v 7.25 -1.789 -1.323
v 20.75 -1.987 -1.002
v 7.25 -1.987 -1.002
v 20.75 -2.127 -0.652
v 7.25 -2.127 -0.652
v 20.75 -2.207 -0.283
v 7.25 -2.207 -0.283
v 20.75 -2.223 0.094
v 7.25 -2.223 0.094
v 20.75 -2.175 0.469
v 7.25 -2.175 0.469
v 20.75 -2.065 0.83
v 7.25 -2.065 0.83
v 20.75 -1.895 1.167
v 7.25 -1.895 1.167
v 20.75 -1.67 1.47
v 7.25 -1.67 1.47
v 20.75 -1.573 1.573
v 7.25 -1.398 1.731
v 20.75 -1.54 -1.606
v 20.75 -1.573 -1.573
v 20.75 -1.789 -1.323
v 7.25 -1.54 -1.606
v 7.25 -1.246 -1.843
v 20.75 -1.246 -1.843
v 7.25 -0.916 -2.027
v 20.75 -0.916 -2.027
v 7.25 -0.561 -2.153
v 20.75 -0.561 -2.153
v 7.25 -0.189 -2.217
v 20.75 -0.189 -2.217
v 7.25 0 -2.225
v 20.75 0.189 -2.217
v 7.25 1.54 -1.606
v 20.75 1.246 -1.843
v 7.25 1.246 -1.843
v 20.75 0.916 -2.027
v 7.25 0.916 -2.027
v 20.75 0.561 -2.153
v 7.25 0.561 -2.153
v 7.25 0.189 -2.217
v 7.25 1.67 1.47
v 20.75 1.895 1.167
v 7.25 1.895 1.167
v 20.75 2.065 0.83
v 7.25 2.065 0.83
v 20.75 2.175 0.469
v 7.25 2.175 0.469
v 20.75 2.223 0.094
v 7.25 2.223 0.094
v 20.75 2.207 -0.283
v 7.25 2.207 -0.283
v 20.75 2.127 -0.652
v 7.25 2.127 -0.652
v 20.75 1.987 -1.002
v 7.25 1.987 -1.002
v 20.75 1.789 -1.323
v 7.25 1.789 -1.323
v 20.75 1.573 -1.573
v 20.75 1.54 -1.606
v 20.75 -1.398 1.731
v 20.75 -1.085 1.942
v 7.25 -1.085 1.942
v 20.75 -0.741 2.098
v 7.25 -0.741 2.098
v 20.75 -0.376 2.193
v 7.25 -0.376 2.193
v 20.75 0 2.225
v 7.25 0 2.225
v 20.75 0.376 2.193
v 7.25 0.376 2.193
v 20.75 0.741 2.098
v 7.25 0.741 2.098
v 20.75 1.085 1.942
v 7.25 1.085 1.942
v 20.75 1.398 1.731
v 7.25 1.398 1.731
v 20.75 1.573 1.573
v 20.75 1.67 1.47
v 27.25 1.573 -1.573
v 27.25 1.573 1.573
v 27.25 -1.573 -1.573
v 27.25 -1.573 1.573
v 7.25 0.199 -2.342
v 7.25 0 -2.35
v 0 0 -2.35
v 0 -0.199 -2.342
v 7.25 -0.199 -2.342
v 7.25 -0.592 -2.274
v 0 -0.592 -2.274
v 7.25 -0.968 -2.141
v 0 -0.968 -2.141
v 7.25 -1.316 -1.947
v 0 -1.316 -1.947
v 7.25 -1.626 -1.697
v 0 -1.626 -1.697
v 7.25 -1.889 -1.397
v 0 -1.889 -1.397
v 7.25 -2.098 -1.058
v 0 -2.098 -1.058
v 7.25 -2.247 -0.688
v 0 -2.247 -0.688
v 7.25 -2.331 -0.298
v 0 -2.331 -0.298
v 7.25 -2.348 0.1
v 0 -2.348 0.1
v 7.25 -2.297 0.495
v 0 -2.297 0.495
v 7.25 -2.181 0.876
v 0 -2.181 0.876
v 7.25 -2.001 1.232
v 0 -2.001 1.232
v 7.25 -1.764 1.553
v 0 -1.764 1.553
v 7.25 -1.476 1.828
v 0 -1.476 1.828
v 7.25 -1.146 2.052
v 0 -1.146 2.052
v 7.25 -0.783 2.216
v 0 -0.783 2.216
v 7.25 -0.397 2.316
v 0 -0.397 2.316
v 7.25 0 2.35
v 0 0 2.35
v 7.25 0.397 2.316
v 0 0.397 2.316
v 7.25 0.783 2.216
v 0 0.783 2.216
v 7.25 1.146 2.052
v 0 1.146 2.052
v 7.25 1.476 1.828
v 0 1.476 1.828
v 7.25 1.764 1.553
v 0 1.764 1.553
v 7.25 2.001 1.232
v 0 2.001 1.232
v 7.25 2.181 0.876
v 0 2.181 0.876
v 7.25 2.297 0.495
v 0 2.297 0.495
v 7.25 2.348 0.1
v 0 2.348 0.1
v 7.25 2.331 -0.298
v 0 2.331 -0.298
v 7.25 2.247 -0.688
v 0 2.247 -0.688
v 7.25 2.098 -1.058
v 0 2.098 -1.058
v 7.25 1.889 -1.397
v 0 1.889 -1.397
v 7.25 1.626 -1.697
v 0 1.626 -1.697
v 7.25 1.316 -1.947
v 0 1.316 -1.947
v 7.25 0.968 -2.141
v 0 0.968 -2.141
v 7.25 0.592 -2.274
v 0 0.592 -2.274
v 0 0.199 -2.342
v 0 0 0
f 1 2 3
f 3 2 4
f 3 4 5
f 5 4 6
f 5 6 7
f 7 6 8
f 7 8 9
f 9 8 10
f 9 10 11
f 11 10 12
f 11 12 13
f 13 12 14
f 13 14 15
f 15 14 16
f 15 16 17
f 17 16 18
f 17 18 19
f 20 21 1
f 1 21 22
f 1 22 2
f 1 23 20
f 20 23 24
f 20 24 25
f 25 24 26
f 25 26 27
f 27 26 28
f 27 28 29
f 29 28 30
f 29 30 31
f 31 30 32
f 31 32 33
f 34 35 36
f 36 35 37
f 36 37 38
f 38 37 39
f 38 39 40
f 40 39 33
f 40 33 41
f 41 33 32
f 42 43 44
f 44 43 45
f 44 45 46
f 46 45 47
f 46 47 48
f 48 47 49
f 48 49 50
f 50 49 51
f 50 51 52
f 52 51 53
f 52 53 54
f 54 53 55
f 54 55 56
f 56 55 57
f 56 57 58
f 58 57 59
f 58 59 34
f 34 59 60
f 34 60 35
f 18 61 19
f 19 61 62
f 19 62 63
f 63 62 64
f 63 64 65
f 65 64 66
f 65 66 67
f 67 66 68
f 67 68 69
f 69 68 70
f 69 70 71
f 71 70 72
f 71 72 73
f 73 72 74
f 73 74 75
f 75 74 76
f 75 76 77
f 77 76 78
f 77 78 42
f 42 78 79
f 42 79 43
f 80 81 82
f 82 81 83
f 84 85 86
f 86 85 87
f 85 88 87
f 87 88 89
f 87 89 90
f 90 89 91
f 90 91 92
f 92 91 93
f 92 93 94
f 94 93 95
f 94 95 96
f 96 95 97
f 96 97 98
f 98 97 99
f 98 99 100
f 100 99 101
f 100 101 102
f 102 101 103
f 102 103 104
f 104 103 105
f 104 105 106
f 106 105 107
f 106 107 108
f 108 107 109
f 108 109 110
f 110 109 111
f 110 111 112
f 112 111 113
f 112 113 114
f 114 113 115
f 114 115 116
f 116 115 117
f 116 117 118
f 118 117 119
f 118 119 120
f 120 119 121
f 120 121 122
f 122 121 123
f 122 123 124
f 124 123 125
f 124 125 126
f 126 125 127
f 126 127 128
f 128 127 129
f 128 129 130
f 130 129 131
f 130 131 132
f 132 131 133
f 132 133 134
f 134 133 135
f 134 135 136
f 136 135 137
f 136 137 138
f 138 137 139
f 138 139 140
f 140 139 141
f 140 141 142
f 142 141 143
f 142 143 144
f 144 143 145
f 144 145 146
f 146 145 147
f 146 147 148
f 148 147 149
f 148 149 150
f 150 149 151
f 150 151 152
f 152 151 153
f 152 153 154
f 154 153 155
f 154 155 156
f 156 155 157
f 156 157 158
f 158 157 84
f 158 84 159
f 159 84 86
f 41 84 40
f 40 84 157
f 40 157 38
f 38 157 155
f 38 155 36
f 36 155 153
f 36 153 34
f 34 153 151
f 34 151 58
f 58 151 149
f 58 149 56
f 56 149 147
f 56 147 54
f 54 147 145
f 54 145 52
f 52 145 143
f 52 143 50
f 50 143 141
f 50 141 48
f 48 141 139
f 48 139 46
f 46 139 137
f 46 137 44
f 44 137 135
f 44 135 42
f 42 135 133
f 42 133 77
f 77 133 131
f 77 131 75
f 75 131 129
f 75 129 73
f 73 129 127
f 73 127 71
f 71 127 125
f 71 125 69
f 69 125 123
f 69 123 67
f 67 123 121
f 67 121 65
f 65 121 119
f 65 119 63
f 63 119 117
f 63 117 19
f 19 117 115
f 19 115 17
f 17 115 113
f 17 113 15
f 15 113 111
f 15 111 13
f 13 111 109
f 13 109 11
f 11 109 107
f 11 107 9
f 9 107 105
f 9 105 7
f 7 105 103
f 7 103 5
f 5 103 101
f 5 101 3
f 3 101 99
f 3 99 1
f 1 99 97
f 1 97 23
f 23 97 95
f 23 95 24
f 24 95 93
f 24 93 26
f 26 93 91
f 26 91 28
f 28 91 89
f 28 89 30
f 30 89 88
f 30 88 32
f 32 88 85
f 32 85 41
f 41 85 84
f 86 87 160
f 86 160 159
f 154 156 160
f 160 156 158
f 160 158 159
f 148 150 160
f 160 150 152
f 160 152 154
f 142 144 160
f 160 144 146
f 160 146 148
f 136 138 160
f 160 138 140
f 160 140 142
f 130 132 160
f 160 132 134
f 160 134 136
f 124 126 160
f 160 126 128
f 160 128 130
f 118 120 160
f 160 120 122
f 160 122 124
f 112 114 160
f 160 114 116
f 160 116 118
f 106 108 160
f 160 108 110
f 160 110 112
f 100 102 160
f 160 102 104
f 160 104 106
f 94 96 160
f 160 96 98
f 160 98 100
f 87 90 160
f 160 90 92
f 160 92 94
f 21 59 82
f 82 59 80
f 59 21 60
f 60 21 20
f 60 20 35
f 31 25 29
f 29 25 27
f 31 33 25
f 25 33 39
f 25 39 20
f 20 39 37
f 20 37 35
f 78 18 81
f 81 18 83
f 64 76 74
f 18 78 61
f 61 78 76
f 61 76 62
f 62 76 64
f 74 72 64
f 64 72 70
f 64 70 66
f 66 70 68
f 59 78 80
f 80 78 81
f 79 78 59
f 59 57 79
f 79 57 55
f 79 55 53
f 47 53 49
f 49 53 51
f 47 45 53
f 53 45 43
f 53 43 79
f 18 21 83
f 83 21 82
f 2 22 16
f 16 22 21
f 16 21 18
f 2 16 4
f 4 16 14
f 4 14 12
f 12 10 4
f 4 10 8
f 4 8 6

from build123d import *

# Parameters (mm, degrees)
CROQUIS1_R              = 2.35
CROQUIS1_R_2            = 2.225
SALIENTE_EXTRUIR1_DEPTH = 7.25
SALIENTE_EXTRUIR2_START = 7.25
CROQUIS1_3_R            = 2.225
SALIENTE_EXTRUIR2_DEPTH = 20
CORTAR_EXTRUIR1_START   = -6.5
CORTAR_EXTRUIR1_DEPTH   = 6.5


with BuildPart() as part:
    # Croquis1 → Saliente-Extruir1 (new body)
    # profile 1 of 2: a face of its own
    with BuildSketch(Plane.YZ):
        with Locations(Location((0, 0, 0), (0, 0, 90))):
            Circle(CROQUIS1_R)
        Circle(CROQUIS1_R_2, mode=Mode.SUBTRACT)
    # profile 2 of 2: a face of its own
    with BuildSketch(Plane.YZ):
        Circle(CROQUIS1_R_2)
    extrude(amount=SALIENTE_EXTRUIR1_DEPTH)

    # Croquis1<3> → Saliente-Extruir2 (add)
    with BuildSketch(Plane.YZ.offset(SALIENTE_EXTRUIR2_START)):
        with Locations(Location((0, 0, 0), (0, 0, 270))):
            Circle(CROQUIS1_3_R)
    extrude(amount=SALIENTE_EXTRUIR2_DEPTH)

    # Croquis3 → Cortar-Extruir1 (cut)
    with BuildSketch(Plane.YZ.offset(27.25).offset(CORTAR_EXTRUIR1_START)):
        with BuildLine():
            ThreePointArc((1.573312588, 1.573312588), (0, 2.225), (-1.573312588, 1.573312588))
            Line((-1.573312588, 1.573312588), (1.573312588, 1.573312588))
        make_face()
        with BuildLine():
            ThreePointArc((-1.573312588, 1.573312588), (-2.225, 0), (-1.573312588, -1.573312588))
            Line((-1.573312588, -1.573312588), (-1.573312588, 1.573312588))
        make_face()
        with BuildLine():
            Line((1.573312588, 1.573312588), (1.573312588, -1.573312588))
            ThreePointArc((1.573312588, -1.573312588), (2.05563196, -0.851470637), (2.225, 0))
            ThreePointArc((2.225, 0), (2.05563196, 0.851470637), (1.573312588, 1.573312588))
        make_face()
        with BuildLine():
            Line((1.573312588, -1.573312588), (-1.573312588, -1.573312588))
            ThreePointArc((-1.573312588, -1.573312588), (0, -2.225), (1.573312588, -1.573312588))
        make_face()
    extrude(amount=CORTAR_EXTRUIR1_DEPTH, mode=Mode.SUBTRACT)


solid = part.part
